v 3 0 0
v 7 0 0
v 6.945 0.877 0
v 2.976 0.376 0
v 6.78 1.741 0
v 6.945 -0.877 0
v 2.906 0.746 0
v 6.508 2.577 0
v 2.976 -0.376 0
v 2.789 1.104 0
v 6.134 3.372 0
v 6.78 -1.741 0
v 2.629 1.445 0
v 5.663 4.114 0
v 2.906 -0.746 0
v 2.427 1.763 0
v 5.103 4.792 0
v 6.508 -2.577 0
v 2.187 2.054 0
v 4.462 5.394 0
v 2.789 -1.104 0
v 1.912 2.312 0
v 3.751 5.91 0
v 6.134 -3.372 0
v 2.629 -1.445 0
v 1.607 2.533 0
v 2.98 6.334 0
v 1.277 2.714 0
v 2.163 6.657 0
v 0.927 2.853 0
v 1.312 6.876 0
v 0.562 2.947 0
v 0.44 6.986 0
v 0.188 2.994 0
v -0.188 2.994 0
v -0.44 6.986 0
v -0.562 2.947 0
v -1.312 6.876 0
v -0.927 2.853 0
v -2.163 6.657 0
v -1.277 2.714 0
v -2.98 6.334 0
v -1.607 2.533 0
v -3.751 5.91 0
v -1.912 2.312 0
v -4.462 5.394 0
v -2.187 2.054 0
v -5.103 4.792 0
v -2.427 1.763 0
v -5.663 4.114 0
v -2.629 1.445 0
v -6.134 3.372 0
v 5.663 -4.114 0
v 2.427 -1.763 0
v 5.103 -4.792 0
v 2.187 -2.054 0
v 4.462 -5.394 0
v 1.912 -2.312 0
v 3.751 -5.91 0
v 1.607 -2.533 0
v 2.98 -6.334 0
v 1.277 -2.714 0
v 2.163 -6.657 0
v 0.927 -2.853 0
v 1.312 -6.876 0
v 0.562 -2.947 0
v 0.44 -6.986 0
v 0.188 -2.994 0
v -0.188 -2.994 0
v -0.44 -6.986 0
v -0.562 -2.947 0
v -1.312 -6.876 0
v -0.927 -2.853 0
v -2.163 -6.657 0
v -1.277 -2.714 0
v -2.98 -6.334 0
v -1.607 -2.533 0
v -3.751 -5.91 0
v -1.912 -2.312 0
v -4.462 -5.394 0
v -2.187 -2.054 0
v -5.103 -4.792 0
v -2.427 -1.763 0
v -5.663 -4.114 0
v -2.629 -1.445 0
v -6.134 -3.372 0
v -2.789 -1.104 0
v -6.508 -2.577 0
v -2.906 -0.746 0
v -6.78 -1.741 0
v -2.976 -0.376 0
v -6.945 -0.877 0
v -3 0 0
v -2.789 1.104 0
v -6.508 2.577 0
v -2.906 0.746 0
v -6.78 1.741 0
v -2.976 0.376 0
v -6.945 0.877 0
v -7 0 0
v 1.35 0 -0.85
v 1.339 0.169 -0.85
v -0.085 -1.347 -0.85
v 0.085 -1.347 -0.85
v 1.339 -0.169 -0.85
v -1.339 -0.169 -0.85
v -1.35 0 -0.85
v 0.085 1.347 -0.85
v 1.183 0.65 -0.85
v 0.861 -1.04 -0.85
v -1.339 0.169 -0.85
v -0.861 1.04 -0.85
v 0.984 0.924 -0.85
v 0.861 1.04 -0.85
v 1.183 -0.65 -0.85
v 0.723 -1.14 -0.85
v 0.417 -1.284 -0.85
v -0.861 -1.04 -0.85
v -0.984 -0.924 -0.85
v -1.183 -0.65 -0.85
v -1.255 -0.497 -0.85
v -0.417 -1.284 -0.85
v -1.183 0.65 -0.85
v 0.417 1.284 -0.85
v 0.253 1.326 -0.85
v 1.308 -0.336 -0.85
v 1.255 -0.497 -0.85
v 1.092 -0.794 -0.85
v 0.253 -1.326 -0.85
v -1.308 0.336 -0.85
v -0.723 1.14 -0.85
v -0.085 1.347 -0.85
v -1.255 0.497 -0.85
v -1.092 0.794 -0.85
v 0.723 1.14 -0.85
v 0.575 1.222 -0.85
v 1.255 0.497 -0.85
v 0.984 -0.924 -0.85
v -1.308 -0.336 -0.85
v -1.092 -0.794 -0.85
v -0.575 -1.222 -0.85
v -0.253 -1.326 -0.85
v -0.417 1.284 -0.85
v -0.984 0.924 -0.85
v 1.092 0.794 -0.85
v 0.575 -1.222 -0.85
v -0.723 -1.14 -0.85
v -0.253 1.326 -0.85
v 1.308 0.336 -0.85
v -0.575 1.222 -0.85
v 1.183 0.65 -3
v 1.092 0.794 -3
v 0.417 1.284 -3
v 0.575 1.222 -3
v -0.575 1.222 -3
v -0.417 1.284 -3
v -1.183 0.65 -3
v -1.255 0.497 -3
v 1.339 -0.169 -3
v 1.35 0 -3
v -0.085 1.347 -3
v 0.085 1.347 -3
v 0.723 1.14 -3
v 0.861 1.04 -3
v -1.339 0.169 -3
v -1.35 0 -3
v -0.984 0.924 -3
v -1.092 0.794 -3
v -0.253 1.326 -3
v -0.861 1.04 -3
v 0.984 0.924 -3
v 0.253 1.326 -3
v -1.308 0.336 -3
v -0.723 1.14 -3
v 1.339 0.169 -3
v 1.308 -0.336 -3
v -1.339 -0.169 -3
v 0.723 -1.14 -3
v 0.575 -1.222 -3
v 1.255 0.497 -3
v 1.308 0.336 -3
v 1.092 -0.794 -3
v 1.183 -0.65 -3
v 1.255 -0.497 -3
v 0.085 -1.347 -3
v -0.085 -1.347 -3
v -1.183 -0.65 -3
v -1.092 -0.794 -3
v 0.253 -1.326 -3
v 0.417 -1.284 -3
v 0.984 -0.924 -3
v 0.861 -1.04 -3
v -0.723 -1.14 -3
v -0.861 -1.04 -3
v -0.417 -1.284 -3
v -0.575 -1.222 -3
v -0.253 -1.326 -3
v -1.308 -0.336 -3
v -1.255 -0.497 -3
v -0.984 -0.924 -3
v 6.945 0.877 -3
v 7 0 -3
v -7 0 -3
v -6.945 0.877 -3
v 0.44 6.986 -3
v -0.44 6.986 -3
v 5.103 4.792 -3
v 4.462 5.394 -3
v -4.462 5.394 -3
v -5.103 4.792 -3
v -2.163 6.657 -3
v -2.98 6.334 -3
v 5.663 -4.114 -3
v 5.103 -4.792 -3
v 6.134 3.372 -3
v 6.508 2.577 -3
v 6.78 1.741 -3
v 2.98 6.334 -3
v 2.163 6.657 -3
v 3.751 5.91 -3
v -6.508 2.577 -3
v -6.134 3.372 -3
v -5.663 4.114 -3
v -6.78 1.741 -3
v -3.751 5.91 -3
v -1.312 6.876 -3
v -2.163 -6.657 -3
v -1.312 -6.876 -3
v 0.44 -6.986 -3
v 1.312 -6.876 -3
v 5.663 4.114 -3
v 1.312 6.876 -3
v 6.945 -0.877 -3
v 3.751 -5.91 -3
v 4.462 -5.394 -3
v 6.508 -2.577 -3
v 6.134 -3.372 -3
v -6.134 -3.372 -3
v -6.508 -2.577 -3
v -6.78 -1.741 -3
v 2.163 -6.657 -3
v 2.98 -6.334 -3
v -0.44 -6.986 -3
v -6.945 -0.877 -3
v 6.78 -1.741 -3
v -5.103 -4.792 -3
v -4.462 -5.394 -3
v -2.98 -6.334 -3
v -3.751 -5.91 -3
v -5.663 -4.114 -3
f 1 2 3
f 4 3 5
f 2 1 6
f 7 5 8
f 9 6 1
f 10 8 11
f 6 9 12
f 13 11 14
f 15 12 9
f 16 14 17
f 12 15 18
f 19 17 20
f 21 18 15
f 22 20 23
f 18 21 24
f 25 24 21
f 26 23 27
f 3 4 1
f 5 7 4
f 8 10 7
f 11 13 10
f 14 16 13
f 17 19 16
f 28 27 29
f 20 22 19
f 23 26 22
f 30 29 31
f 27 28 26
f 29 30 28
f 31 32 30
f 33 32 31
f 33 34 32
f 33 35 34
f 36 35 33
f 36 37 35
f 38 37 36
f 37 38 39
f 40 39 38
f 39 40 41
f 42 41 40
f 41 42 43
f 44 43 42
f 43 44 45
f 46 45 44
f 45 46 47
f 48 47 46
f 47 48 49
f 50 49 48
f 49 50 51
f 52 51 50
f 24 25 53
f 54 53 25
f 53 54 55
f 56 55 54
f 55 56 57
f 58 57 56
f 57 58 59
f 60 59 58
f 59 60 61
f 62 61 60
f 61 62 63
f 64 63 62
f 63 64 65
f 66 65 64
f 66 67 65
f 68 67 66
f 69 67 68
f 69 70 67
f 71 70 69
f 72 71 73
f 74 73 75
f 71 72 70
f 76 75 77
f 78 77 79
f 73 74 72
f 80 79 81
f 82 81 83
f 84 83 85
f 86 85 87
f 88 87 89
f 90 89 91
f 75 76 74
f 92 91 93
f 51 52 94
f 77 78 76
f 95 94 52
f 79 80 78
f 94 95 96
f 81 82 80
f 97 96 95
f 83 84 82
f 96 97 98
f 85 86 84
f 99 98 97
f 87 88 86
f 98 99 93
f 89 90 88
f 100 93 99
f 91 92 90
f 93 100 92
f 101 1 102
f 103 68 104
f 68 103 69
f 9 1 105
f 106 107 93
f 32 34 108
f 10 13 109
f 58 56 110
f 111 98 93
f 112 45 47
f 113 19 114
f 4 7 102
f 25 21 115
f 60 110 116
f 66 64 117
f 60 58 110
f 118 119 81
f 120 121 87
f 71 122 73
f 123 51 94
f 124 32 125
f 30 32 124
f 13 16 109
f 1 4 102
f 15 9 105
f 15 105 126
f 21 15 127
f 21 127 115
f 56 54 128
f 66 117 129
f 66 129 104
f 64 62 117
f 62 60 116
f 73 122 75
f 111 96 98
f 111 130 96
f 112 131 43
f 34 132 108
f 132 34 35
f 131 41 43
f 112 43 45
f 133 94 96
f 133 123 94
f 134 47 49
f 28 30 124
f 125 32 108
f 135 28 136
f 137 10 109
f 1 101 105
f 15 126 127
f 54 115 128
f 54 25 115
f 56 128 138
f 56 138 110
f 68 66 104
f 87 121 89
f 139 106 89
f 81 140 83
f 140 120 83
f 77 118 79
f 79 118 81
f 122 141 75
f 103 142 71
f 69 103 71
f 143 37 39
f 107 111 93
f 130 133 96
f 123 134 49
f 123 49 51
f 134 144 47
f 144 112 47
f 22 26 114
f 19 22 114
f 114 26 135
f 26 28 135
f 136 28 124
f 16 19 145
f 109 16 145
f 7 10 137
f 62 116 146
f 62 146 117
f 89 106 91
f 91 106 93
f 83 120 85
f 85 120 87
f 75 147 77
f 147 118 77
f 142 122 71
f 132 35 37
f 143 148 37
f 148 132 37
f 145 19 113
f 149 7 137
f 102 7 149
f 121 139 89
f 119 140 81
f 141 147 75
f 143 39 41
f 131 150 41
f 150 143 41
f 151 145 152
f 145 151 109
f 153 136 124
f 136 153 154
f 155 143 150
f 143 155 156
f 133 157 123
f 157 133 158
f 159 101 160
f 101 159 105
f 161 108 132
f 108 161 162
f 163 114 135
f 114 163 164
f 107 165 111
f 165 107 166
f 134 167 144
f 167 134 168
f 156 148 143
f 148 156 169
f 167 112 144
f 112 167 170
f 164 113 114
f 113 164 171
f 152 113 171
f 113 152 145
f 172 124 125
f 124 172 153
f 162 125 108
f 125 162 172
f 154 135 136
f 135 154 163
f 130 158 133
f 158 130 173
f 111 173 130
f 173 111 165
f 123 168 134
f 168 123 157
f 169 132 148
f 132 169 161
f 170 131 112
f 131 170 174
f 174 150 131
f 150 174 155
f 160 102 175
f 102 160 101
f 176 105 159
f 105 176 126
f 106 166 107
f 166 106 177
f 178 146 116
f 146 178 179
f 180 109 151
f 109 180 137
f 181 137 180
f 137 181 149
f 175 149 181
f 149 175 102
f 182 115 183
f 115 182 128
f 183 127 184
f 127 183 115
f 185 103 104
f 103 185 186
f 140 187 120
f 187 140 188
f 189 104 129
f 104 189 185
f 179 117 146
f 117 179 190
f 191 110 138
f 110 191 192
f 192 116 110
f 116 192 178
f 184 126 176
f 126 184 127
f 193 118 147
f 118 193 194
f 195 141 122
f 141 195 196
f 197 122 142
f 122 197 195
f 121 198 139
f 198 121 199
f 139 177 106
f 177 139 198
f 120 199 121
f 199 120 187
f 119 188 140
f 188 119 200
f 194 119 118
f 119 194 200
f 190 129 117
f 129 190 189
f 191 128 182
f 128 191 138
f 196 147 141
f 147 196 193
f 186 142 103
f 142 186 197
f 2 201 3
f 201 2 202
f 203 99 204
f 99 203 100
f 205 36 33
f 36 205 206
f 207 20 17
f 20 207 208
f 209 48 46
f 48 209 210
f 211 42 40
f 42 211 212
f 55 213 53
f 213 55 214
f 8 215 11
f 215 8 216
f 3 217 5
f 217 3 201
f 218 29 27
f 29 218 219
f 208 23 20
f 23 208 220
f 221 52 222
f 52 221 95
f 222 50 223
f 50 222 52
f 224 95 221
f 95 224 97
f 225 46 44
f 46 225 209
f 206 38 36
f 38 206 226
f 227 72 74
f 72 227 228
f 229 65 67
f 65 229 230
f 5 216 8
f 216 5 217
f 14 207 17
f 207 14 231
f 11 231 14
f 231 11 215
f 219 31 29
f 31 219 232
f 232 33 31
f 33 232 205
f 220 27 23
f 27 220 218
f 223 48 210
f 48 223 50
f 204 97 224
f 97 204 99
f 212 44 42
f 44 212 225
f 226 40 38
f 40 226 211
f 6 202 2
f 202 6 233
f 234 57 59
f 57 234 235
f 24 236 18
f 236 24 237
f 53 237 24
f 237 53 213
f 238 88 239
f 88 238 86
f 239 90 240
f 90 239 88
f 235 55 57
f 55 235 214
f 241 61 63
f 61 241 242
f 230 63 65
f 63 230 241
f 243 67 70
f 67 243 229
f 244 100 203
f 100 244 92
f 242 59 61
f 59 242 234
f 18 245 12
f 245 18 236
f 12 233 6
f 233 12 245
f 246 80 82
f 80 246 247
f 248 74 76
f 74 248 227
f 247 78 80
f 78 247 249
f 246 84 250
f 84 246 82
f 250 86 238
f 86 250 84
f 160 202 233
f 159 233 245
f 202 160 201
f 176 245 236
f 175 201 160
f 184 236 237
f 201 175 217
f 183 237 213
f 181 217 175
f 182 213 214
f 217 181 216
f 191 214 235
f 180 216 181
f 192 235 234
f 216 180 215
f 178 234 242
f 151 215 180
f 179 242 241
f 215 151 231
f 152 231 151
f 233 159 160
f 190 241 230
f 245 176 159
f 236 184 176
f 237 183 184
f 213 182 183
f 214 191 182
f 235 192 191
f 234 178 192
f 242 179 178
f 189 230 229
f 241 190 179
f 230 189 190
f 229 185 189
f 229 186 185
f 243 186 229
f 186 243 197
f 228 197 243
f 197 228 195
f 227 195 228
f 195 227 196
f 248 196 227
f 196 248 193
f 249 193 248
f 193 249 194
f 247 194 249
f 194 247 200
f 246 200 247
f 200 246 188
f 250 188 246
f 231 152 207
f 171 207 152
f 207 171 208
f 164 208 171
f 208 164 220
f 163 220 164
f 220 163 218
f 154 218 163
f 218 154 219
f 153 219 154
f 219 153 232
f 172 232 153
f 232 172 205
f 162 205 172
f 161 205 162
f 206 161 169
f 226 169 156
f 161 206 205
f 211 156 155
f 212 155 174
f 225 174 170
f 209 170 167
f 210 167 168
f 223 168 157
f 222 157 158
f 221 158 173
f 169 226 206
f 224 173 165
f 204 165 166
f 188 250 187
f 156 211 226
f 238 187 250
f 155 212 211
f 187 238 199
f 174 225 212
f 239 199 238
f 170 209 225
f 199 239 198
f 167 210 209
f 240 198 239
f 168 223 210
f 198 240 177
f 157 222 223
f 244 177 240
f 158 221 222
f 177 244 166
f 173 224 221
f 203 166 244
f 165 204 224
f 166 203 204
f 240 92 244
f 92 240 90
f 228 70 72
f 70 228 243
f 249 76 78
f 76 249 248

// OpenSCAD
$fn = 50;


difference() {
	union() {
		translate(v = [0, 0, -3.0000000000]) {
			cylinder(h = 3, r = 7.0000000000);
		}
	}
	union() {
		translate(v = [0, 0, 0]) {
			rotate(a = [0, 0, 0]) {
				difference() {
					union() {
						translate(v = [0, 0, -6.0000000000]) {
							cylinder(h = 6, r = 1.0000000000);
						}
						translate(v = [0, 0, -0.8500000000]) {
							cylinder(h = 0.8500000000, r1 = 1.3500000000, r2 = 3.0000000000);
						}
						translate(v = [0, 0, -6.0000000000]) {
							cylinder(h = 6, r = 1.3500000000);
						}
						translate(v = [0, 0, -6.0000000000]) {
							cylinder(h = 6, r = 1.0000000000);
						}
					}
					union();
				}
			}
		}
	}
}
